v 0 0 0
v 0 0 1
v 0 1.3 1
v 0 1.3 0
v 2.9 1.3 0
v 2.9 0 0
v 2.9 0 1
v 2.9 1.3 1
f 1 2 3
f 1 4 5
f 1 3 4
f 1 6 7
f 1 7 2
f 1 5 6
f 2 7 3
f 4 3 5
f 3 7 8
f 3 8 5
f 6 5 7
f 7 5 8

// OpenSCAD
/* Warning, this is a very basic generator with a lot of approximation 
input data : [SOT-143, F7X, 2.90x1.30mm, 4, , C, C04-00031C]
generated by com.zoubworld.electronics.cad.model3d.Basic
Date : Sun Feb 15 10:50:48 CET 2026
*/

//body
color("black")
translate([0,0,0])
cube([2.9,1.3,1.0], center=false);
